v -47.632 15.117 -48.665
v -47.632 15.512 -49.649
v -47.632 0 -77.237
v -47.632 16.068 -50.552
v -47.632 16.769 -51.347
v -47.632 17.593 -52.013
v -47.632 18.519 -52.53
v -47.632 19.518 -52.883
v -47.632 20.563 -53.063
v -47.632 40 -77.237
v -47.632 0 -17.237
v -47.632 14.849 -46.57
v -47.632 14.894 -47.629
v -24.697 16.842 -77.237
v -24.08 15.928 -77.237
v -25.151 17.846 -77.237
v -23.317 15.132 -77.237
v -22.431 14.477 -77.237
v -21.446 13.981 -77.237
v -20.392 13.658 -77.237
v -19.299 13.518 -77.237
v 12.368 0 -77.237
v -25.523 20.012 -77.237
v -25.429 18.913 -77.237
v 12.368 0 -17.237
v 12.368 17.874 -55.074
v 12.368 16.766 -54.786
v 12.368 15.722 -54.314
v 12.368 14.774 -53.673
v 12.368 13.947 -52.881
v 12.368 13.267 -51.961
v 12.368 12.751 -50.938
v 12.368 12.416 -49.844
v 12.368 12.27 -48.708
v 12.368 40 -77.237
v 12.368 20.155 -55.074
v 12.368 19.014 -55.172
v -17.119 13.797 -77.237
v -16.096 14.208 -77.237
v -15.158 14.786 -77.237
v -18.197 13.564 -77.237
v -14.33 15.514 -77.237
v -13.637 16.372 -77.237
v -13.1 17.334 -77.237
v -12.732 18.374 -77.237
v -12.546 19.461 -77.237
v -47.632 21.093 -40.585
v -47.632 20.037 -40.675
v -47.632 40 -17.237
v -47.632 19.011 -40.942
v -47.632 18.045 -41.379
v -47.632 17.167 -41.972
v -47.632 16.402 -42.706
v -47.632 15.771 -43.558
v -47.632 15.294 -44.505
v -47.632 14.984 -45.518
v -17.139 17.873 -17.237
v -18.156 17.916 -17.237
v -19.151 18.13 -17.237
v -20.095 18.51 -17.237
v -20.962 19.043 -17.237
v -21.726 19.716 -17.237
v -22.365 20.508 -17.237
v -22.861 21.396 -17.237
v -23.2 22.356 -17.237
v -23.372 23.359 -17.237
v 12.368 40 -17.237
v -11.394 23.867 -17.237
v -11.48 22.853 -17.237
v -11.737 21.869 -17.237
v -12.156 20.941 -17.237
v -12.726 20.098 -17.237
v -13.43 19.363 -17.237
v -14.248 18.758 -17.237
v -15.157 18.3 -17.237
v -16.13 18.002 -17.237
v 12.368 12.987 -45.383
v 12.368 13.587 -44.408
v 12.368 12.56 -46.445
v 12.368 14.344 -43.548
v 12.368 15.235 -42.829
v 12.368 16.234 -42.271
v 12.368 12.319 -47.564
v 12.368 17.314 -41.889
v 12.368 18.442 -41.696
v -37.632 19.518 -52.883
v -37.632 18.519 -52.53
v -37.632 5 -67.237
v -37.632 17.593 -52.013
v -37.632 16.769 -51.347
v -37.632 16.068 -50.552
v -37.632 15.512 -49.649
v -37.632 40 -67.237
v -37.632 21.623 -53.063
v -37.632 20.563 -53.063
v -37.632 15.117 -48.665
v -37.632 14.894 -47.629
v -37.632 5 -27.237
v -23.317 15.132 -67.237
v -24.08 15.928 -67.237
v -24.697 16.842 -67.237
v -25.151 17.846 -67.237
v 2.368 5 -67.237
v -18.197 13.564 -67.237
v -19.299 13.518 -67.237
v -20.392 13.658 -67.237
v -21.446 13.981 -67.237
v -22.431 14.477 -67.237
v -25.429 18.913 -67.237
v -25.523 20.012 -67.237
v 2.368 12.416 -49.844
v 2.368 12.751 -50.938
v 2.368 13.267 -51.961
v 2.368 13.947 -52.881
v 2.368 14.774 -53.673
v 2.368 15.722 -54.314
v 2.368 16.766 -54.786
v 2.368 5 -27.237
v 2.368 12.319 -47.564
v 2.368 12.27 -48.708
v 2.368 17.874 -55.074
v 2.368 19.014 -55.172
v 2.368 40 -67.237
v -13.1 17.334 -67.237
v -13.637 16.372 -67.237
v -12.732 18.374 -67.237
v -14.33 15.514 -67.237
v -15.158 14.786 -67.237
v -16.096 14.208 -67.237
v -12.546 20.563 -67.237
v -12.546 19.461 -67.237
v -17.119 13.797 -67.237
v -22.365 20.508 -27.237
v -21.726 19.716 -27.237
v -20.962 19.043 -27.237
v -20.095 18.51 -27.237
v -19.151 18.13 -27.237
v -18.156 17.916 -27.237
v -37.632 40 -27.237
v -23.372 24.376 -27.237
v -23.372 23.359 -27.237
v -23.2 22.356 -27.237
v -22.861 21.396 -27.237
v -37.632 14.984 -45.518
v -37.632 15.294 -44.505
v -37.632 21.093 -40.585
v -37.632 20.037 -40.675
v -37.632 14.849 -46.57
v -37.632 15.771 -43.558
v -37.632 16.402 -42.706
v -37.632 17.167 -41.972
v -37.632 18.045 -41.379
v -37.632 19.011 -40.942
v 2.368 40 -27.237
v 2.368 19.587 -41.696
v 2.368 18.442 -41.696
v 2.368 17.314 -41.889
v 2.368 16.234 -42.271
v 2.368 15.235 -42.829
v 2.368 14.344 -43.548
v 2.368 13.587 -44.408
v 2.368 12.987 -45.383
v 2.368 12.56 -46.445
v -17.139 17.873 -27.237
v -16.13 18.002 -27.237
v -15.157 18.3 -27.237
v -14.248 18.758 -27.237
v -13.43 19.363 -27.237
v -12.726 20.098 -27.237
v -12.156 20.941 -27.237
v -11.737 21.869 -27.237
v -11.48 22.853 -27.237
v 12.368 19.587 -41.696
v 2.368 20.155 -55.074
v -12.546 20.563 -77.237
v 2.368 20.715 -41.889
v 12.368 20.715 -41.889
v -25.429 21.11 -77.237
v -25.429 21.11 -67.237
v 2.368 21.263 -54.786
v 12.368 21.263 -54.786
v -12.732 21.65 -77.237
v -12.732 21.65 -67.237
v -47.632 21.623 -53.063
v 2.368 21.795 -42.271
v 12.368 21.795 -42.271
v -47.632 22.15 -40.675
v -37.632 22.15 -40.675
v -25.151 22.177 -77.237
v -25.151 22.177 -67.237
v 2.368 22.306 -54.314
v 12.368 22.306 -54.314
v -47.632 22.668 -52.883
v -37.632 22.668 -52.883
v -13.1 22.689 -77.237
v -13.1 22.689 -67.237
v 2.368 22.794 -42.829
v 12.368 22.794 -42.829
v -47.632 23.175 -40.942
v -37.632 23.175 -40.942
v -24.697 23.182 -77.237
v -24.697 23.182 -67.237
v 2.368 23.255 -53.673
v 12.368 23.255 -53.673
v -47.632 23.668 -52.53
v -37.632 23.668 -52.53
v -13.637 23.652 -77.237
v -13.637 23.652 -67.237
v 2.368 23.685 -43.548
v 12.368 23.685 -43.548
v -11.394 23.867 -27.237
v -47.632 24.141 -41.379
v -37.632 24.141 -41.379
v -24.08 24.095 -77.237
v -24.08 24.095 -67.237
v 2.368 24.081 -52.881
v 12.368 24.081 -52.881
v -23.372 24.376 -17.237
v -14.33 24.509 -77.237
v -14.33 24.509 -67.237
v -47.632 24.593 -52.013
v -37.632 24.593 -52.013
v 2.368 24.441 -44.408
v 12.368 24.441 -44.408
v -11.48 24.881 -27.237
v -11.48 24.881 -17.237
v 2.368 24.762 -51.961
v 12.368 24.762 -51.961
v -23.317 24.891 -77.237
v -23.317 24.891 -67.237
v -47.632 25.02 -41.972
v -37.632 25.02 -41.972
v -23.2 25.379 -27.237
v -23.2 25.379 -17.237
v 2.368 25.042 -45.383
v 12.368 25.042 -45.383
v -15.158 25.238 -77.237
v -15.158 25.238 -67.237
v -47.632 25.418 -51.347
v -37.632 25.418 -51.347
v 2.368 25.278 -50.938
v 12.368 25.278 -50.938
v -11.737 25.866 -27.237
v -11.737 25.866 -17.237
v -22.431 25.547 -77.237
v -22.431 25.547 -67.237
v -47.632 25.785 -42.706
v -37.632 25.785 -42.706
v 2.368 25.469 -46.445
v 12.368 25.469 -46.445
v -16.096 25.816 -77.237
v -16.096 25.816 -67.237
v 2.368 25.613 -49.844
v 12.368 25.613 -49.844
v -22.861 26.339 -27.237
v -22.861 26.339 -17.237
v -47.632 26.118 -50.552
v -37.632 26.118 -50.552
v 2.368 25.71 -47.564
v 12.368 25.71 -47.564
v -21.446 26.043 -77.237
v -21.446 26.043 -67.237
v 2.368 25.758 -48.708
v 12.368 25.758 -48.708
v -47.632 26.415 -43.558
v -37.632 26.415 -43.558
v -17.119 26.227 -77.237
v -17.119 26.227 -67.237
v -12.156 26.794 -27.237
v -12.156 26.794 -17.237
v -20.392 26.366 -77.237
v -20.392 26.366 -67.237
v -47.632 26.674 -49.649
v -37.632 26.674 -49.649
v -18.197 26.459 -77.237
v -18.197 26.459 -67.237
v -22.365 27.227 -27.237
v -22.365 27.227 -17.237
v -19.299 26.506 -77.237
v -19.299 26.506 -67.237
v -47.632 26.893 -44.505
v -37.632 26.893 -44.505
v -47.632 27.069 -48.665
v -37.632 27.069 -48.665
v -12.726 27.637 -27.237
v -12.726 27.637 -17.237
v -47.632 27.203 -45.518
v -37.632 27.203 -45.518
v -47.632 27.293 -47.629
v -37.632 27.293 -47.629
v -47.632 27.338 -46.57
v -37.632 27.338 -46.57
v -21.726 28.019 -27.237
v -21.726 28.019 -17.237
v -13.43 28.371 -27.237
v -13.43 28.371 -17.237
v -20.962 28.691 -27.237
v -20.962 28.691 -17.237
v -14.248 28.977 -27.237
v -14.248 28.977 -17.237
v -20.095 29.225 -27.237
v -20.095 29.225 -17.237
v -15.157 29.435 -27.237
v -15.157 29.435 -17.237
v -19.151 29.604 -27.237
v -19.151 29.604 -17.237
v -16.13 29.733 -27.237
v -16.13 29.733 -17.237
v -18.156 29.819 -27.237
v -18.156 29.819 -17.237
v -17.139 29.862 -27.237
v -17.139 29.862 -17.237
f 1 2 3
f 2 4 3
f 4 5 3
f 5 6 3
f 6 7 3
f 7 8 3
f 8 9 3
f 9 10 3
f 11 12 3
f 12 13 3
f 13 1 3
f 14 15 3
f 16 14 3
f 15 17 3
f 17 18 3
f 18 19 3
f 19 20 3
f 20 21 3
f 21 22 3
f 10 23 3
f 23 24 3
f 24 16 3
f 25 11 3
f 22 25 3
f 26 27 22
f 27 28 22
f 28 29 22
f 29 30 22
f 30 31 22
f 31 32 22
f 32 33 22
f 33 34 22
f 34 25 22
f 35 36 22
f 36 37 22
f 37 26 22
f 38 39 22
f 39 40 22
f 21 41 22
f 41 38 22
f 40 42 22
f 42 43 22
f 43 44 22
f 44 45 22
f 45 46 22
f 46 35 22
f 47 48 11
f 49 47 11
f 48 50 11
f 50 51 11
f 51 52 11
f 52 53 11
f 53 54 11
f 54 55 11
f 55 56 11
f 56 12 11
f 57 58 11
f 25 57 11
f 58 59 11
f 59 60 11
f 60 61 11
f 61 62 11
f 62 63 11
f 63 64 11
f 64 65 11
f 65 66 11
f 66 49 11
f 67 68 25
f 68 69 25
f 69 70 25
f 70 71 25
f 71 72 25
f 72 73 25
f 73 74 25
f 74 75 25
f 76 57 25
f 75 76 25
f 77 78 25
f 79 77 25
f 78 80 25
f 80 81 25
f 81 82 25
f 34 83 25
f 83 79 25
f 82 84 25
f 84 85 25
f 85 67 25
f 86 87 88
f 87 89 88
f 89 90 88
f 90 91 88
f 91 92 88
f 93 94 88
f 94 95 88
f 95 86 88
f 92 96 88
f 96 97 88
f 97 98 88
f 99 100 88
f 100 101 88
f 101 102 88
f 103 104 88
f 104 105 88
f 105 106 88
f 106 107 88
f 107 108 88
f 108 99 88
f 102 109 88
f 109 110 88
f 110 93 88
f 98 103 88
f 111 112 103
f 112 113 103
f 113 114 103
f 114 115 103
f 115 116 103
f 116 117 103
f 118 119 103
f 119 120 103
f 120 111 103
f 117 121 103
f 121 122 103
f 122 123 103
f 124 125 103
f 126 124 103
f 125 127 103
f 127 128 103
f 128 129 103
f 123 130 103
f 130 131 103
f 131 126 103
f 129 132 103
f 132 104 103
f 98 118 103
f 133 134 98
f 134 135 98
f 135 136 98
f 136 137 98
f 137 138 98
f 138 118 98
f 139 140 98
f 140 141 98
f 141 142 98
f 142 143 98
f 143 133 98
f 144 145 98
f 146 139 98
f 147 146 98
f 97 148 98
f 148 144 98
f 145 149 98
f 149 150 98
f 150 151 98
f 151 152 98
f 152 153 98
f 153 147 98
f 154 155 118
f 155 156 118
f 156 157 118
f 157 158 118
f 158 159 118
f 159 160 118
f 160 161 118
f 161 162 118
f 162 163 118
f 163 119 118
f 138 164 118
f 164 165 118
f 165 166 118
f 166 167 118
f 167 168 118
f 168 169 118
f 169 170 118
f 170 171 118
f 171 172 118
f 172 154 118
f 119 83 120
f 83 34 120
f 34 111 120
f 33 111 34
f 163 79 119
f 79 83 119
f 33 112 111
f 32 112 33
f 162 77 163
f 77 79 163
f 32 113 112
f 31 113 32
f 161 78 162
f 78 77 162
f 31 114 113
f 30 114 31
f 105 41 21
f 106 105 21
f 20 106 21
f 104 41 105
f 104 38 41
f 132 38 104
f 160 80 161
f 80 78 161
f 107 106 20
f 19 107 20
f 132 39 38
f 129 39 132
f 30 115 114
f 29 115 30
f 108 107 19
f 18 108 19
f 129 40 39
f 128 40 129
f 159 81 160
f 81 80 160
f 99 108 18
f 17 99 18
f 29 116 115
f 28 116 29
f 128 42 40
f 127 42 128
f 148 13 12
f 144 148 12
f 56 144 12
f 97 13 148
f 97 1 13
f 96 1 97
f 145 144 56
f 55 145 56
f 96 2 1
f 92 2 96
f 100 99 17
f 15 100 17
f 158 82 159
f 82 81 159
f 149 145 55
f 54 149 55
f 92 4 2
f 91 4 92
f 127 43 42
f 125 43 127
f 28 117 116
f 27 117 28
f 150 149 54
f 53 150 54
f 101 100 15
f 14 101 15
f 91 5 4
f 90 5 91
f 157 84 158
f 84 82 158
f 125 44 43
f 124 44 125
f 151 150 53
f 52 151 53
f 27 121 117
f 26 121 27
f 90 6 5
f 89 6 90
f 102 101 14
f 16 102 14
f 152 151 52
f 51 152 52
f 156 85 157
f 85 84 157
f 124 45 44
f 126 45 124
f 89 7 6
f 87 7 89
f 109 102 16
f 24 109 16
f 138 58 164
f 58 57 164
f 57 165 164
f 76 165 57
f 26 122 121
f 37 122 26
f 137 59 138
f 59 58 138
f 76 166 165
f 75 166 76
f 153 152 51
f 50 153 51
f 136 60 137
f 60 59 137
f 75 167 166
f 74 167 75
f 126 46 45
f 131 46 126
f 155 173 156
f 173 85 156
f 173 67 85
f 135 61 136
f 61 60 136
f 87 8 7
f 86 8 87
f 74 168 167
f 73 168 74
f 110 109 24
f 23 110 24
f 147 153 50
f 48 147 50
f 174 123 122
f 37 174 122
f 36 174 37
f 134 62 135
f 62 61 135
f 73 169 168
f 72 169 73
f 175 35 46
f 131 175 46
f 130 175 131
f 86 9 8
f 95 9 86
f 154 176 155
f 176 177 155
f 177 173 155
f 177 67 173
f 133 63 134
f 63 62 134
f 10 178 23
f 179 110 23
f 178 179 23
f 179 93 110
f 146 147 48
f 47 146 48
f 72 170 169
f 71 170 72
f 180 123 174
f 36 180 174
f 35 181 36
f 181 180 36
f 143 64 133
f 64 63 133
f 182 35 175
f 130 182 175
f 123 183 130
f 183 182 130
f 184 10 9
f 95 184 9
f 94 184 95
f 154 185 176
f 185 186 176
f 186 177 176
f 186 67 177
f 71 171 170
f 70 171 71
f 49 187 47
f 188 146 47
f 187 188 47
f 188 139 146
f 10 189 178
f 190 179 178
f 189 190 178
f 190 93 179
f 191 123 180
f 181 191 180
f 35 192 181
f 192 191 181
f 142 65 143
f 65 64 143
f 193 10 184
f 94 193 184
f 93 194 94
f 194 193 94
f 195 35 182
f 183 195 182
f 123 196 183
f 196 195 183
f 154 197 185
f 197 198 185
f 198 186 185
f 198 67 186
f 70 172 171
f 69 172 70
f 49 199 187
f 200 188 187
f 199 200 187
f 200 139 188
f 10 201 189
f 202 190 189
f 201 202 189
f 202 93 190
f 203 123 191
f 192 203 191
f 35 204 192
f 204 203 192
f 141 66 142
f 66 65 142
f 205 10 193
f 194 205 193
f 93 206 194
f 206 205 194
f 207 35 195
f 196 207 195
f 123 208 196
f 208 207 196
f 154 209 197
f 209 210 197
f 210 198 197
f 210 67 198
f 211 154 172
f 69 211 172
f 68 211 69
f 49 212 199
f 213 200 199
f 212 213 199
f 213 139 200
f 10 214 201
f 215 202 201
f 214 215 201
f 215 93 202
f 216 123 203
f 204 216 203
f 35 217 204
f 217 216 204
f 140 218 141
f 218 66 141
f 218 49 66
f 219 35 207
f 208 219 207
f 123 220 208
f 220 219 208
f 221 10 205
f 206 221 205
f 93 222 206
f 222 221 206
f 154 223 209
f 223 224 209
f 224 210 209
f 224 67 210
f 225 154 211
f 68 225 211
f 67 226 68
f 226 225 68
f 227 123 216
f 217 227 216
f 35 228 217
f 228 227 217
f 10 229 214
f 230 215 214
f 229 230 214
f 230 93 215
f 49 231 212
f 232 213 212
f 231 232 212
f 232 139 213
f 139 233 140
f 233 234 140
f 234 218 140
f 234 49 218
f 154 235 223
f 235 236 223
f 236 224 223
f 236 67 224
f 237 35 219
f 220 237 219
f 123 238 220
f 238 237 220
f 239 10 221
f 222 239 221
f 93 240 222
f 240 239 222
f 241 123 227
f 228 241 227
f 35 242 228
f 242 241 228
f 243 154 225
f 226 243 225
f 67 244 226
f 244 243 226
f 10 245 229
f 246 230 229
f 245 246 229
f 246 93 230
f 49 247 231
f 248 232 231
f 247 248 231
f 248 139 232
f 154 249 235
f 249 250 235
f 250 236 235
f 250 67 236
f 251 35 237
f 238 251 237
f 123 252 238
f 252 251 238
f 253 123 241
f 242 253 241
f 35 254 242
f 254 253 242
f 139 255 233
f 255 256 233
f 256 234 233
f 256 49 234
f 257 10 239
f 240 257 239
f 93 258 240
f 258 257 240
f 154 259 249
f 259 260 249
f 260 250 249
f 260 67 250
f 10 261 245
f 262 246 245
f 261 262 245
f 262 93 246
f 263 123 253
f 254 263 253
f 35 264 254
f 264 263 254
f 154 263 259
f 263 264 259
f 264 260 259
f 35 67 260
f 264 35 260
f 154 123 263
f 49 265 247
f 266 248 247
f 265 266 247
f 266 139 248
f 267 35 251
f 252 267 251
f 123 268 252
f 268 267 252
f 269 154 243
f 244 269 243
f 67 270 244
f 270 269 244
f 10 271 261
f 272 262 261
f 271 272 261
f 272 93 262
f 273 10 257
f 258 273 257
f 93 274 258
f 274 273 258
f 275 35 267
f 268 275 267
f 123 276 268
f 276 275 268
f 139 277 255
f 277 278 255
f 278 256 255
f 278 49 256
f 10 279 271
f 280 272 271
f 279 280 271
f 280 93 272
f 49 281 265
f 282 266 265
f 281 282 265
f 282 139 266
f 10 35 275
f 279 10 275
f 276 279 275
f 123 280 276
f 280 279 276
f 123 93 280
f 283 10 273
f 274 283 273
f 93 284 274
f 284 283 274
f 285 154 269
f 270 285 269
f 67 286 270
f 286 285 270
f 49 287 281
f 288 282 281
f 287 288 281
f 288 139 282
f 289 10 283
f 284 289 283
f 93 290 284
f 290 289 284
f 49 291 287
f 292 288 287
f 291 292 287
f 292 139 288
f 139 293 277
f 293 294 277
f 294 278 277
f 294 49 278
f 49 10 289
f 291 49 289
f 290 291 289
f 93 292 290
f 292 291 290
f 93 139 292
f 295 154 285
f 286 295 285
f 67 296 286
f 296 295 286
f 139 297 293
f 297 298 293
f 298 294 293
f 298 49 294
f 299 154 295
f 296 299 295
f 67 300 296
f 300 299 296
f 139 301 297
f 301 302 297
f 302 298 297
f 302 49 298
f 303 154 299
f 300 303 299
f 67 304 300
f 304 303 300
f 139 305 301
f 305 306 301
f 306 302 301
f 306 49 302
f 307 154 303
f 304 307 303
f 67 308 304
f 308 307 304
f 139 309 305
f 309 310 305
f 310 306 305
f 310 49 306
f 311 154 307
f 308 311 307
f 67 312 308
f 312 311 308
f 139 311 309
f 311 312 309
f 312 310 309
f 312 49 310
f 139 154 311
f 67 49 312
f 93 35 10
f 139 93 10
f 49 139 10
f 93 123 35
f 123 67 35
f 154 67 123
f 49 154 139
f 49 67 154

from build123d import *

# Parameters (mm, degrees)
SKETCH_1_W                    = 60
SKETCH_1_H                    = 60
EXTRUDE_2_DEPTH               = 40
SKETCH_2_W                    = 40
SKETCH_2_H                    = 40
CUT_EXTRUDE_1_DEPTH           = 35
HOLE_WIZARD_12_0_12_1_D       = 12
HOLE_WIZARD_12_0_12_1_DEPTH   = 10
HOLE_WIZARD_13_5_13_5_1_D     = 13.5
HOLE_WIZARD_13_5_13_5_1_DEPTH = 10
HOLE_WIZARD_12_5_12_5_1_D     = 12.5
HOLE_WIZARD_12_5_12_5_1_DEPTH = 10
HOLE_WIZARD_13_0_13_1_D       = 13
HOLE_WIZARD_13_0_13_1_DEPTH   = 10


with BuildPart() as part:
    # 草圖1 → 填料-伸長2 (new body)
    with BuildSketch(Plane(origin=(0, 0, 0), x_dir=(1, 0, 0), z_dir=(0, 1, 0))):
        with Locations((-17.631578947, 47.236842105)):
            Rectangle(SKETCH_1_W, SKETCH_1_H)
    extrude(amount=EXTRUDE_2_DEPTH)

    # 草圖2 → 除料-伸長1 (cut)
    with BuildSketch(Plane(origin=(0, 40, 0), x_dir=(1, 0, 0), z_dir=(0, 1, 0))):
        with Locations((-17.631578947, 47.236842105)):
            Rectangle(SKETCH_2_W, SKETCH_2_H)
    extrude(amount=-CUT_EXTRUDE_1_DEPTH, mode=Mode.SUBTRACT)

    # Ø12.0 (12) 直徑孔1
    with Locations(Plane(origin=(-17.39385665, 23.867389925, -17.236842105), x_dir=(1, 0, 0), z_dir=(0, 0, 1))):
        with Locations((0, 0)):
            Hole(HOLE_WIZARD_12_0_12_1_D / 2, depth=HOLE_WIZARD_12_0_12_1_DEPTH)

    # Ø13.5 (13.5) 直徑孔1
    with Locations(Plane(origin=(12.368421053, 19.014409134, -48.421566687), x_dir=(0, 0, 1), z_dir=(1, 0, 0))):
        with Locations((0, 0)):
            Hole(HOLE_WIZARD_13_5_13_5_1_D / 2, depth=HOLE_WIZARD_13_5_13_5_1_DEPTH)

    # Ø12.5 (12.5) 直徑孔1
    with Locations(Plane(origin=(-47.631578947, 21.093271668, -46.835113177), x_dir=(0, 0, -1), z_dir=(-1, 0, 0))):
        with Locations((0, 0)):
            Hole(HOLE_WIZARD_12_5_12_5_1_D / 2, depth=HOLE_WIZARD_12_5_12_5_1_DEPTH)

    # Ø13.0 (13) 直徑孔1
    with Locations(Plane(origin=(-19.022665384, 20.011822427, -77.236842105), x_dir=(-1, 0, 0), z_dir=(0, 0, -1))):
        with Locations((0, 0)):
            Hole(HOLE_WIZARD_13_0_13_1_D / 2, depth=HOLE_WIZARD_13_0_13_1_DEPTH)


solid = part.part
